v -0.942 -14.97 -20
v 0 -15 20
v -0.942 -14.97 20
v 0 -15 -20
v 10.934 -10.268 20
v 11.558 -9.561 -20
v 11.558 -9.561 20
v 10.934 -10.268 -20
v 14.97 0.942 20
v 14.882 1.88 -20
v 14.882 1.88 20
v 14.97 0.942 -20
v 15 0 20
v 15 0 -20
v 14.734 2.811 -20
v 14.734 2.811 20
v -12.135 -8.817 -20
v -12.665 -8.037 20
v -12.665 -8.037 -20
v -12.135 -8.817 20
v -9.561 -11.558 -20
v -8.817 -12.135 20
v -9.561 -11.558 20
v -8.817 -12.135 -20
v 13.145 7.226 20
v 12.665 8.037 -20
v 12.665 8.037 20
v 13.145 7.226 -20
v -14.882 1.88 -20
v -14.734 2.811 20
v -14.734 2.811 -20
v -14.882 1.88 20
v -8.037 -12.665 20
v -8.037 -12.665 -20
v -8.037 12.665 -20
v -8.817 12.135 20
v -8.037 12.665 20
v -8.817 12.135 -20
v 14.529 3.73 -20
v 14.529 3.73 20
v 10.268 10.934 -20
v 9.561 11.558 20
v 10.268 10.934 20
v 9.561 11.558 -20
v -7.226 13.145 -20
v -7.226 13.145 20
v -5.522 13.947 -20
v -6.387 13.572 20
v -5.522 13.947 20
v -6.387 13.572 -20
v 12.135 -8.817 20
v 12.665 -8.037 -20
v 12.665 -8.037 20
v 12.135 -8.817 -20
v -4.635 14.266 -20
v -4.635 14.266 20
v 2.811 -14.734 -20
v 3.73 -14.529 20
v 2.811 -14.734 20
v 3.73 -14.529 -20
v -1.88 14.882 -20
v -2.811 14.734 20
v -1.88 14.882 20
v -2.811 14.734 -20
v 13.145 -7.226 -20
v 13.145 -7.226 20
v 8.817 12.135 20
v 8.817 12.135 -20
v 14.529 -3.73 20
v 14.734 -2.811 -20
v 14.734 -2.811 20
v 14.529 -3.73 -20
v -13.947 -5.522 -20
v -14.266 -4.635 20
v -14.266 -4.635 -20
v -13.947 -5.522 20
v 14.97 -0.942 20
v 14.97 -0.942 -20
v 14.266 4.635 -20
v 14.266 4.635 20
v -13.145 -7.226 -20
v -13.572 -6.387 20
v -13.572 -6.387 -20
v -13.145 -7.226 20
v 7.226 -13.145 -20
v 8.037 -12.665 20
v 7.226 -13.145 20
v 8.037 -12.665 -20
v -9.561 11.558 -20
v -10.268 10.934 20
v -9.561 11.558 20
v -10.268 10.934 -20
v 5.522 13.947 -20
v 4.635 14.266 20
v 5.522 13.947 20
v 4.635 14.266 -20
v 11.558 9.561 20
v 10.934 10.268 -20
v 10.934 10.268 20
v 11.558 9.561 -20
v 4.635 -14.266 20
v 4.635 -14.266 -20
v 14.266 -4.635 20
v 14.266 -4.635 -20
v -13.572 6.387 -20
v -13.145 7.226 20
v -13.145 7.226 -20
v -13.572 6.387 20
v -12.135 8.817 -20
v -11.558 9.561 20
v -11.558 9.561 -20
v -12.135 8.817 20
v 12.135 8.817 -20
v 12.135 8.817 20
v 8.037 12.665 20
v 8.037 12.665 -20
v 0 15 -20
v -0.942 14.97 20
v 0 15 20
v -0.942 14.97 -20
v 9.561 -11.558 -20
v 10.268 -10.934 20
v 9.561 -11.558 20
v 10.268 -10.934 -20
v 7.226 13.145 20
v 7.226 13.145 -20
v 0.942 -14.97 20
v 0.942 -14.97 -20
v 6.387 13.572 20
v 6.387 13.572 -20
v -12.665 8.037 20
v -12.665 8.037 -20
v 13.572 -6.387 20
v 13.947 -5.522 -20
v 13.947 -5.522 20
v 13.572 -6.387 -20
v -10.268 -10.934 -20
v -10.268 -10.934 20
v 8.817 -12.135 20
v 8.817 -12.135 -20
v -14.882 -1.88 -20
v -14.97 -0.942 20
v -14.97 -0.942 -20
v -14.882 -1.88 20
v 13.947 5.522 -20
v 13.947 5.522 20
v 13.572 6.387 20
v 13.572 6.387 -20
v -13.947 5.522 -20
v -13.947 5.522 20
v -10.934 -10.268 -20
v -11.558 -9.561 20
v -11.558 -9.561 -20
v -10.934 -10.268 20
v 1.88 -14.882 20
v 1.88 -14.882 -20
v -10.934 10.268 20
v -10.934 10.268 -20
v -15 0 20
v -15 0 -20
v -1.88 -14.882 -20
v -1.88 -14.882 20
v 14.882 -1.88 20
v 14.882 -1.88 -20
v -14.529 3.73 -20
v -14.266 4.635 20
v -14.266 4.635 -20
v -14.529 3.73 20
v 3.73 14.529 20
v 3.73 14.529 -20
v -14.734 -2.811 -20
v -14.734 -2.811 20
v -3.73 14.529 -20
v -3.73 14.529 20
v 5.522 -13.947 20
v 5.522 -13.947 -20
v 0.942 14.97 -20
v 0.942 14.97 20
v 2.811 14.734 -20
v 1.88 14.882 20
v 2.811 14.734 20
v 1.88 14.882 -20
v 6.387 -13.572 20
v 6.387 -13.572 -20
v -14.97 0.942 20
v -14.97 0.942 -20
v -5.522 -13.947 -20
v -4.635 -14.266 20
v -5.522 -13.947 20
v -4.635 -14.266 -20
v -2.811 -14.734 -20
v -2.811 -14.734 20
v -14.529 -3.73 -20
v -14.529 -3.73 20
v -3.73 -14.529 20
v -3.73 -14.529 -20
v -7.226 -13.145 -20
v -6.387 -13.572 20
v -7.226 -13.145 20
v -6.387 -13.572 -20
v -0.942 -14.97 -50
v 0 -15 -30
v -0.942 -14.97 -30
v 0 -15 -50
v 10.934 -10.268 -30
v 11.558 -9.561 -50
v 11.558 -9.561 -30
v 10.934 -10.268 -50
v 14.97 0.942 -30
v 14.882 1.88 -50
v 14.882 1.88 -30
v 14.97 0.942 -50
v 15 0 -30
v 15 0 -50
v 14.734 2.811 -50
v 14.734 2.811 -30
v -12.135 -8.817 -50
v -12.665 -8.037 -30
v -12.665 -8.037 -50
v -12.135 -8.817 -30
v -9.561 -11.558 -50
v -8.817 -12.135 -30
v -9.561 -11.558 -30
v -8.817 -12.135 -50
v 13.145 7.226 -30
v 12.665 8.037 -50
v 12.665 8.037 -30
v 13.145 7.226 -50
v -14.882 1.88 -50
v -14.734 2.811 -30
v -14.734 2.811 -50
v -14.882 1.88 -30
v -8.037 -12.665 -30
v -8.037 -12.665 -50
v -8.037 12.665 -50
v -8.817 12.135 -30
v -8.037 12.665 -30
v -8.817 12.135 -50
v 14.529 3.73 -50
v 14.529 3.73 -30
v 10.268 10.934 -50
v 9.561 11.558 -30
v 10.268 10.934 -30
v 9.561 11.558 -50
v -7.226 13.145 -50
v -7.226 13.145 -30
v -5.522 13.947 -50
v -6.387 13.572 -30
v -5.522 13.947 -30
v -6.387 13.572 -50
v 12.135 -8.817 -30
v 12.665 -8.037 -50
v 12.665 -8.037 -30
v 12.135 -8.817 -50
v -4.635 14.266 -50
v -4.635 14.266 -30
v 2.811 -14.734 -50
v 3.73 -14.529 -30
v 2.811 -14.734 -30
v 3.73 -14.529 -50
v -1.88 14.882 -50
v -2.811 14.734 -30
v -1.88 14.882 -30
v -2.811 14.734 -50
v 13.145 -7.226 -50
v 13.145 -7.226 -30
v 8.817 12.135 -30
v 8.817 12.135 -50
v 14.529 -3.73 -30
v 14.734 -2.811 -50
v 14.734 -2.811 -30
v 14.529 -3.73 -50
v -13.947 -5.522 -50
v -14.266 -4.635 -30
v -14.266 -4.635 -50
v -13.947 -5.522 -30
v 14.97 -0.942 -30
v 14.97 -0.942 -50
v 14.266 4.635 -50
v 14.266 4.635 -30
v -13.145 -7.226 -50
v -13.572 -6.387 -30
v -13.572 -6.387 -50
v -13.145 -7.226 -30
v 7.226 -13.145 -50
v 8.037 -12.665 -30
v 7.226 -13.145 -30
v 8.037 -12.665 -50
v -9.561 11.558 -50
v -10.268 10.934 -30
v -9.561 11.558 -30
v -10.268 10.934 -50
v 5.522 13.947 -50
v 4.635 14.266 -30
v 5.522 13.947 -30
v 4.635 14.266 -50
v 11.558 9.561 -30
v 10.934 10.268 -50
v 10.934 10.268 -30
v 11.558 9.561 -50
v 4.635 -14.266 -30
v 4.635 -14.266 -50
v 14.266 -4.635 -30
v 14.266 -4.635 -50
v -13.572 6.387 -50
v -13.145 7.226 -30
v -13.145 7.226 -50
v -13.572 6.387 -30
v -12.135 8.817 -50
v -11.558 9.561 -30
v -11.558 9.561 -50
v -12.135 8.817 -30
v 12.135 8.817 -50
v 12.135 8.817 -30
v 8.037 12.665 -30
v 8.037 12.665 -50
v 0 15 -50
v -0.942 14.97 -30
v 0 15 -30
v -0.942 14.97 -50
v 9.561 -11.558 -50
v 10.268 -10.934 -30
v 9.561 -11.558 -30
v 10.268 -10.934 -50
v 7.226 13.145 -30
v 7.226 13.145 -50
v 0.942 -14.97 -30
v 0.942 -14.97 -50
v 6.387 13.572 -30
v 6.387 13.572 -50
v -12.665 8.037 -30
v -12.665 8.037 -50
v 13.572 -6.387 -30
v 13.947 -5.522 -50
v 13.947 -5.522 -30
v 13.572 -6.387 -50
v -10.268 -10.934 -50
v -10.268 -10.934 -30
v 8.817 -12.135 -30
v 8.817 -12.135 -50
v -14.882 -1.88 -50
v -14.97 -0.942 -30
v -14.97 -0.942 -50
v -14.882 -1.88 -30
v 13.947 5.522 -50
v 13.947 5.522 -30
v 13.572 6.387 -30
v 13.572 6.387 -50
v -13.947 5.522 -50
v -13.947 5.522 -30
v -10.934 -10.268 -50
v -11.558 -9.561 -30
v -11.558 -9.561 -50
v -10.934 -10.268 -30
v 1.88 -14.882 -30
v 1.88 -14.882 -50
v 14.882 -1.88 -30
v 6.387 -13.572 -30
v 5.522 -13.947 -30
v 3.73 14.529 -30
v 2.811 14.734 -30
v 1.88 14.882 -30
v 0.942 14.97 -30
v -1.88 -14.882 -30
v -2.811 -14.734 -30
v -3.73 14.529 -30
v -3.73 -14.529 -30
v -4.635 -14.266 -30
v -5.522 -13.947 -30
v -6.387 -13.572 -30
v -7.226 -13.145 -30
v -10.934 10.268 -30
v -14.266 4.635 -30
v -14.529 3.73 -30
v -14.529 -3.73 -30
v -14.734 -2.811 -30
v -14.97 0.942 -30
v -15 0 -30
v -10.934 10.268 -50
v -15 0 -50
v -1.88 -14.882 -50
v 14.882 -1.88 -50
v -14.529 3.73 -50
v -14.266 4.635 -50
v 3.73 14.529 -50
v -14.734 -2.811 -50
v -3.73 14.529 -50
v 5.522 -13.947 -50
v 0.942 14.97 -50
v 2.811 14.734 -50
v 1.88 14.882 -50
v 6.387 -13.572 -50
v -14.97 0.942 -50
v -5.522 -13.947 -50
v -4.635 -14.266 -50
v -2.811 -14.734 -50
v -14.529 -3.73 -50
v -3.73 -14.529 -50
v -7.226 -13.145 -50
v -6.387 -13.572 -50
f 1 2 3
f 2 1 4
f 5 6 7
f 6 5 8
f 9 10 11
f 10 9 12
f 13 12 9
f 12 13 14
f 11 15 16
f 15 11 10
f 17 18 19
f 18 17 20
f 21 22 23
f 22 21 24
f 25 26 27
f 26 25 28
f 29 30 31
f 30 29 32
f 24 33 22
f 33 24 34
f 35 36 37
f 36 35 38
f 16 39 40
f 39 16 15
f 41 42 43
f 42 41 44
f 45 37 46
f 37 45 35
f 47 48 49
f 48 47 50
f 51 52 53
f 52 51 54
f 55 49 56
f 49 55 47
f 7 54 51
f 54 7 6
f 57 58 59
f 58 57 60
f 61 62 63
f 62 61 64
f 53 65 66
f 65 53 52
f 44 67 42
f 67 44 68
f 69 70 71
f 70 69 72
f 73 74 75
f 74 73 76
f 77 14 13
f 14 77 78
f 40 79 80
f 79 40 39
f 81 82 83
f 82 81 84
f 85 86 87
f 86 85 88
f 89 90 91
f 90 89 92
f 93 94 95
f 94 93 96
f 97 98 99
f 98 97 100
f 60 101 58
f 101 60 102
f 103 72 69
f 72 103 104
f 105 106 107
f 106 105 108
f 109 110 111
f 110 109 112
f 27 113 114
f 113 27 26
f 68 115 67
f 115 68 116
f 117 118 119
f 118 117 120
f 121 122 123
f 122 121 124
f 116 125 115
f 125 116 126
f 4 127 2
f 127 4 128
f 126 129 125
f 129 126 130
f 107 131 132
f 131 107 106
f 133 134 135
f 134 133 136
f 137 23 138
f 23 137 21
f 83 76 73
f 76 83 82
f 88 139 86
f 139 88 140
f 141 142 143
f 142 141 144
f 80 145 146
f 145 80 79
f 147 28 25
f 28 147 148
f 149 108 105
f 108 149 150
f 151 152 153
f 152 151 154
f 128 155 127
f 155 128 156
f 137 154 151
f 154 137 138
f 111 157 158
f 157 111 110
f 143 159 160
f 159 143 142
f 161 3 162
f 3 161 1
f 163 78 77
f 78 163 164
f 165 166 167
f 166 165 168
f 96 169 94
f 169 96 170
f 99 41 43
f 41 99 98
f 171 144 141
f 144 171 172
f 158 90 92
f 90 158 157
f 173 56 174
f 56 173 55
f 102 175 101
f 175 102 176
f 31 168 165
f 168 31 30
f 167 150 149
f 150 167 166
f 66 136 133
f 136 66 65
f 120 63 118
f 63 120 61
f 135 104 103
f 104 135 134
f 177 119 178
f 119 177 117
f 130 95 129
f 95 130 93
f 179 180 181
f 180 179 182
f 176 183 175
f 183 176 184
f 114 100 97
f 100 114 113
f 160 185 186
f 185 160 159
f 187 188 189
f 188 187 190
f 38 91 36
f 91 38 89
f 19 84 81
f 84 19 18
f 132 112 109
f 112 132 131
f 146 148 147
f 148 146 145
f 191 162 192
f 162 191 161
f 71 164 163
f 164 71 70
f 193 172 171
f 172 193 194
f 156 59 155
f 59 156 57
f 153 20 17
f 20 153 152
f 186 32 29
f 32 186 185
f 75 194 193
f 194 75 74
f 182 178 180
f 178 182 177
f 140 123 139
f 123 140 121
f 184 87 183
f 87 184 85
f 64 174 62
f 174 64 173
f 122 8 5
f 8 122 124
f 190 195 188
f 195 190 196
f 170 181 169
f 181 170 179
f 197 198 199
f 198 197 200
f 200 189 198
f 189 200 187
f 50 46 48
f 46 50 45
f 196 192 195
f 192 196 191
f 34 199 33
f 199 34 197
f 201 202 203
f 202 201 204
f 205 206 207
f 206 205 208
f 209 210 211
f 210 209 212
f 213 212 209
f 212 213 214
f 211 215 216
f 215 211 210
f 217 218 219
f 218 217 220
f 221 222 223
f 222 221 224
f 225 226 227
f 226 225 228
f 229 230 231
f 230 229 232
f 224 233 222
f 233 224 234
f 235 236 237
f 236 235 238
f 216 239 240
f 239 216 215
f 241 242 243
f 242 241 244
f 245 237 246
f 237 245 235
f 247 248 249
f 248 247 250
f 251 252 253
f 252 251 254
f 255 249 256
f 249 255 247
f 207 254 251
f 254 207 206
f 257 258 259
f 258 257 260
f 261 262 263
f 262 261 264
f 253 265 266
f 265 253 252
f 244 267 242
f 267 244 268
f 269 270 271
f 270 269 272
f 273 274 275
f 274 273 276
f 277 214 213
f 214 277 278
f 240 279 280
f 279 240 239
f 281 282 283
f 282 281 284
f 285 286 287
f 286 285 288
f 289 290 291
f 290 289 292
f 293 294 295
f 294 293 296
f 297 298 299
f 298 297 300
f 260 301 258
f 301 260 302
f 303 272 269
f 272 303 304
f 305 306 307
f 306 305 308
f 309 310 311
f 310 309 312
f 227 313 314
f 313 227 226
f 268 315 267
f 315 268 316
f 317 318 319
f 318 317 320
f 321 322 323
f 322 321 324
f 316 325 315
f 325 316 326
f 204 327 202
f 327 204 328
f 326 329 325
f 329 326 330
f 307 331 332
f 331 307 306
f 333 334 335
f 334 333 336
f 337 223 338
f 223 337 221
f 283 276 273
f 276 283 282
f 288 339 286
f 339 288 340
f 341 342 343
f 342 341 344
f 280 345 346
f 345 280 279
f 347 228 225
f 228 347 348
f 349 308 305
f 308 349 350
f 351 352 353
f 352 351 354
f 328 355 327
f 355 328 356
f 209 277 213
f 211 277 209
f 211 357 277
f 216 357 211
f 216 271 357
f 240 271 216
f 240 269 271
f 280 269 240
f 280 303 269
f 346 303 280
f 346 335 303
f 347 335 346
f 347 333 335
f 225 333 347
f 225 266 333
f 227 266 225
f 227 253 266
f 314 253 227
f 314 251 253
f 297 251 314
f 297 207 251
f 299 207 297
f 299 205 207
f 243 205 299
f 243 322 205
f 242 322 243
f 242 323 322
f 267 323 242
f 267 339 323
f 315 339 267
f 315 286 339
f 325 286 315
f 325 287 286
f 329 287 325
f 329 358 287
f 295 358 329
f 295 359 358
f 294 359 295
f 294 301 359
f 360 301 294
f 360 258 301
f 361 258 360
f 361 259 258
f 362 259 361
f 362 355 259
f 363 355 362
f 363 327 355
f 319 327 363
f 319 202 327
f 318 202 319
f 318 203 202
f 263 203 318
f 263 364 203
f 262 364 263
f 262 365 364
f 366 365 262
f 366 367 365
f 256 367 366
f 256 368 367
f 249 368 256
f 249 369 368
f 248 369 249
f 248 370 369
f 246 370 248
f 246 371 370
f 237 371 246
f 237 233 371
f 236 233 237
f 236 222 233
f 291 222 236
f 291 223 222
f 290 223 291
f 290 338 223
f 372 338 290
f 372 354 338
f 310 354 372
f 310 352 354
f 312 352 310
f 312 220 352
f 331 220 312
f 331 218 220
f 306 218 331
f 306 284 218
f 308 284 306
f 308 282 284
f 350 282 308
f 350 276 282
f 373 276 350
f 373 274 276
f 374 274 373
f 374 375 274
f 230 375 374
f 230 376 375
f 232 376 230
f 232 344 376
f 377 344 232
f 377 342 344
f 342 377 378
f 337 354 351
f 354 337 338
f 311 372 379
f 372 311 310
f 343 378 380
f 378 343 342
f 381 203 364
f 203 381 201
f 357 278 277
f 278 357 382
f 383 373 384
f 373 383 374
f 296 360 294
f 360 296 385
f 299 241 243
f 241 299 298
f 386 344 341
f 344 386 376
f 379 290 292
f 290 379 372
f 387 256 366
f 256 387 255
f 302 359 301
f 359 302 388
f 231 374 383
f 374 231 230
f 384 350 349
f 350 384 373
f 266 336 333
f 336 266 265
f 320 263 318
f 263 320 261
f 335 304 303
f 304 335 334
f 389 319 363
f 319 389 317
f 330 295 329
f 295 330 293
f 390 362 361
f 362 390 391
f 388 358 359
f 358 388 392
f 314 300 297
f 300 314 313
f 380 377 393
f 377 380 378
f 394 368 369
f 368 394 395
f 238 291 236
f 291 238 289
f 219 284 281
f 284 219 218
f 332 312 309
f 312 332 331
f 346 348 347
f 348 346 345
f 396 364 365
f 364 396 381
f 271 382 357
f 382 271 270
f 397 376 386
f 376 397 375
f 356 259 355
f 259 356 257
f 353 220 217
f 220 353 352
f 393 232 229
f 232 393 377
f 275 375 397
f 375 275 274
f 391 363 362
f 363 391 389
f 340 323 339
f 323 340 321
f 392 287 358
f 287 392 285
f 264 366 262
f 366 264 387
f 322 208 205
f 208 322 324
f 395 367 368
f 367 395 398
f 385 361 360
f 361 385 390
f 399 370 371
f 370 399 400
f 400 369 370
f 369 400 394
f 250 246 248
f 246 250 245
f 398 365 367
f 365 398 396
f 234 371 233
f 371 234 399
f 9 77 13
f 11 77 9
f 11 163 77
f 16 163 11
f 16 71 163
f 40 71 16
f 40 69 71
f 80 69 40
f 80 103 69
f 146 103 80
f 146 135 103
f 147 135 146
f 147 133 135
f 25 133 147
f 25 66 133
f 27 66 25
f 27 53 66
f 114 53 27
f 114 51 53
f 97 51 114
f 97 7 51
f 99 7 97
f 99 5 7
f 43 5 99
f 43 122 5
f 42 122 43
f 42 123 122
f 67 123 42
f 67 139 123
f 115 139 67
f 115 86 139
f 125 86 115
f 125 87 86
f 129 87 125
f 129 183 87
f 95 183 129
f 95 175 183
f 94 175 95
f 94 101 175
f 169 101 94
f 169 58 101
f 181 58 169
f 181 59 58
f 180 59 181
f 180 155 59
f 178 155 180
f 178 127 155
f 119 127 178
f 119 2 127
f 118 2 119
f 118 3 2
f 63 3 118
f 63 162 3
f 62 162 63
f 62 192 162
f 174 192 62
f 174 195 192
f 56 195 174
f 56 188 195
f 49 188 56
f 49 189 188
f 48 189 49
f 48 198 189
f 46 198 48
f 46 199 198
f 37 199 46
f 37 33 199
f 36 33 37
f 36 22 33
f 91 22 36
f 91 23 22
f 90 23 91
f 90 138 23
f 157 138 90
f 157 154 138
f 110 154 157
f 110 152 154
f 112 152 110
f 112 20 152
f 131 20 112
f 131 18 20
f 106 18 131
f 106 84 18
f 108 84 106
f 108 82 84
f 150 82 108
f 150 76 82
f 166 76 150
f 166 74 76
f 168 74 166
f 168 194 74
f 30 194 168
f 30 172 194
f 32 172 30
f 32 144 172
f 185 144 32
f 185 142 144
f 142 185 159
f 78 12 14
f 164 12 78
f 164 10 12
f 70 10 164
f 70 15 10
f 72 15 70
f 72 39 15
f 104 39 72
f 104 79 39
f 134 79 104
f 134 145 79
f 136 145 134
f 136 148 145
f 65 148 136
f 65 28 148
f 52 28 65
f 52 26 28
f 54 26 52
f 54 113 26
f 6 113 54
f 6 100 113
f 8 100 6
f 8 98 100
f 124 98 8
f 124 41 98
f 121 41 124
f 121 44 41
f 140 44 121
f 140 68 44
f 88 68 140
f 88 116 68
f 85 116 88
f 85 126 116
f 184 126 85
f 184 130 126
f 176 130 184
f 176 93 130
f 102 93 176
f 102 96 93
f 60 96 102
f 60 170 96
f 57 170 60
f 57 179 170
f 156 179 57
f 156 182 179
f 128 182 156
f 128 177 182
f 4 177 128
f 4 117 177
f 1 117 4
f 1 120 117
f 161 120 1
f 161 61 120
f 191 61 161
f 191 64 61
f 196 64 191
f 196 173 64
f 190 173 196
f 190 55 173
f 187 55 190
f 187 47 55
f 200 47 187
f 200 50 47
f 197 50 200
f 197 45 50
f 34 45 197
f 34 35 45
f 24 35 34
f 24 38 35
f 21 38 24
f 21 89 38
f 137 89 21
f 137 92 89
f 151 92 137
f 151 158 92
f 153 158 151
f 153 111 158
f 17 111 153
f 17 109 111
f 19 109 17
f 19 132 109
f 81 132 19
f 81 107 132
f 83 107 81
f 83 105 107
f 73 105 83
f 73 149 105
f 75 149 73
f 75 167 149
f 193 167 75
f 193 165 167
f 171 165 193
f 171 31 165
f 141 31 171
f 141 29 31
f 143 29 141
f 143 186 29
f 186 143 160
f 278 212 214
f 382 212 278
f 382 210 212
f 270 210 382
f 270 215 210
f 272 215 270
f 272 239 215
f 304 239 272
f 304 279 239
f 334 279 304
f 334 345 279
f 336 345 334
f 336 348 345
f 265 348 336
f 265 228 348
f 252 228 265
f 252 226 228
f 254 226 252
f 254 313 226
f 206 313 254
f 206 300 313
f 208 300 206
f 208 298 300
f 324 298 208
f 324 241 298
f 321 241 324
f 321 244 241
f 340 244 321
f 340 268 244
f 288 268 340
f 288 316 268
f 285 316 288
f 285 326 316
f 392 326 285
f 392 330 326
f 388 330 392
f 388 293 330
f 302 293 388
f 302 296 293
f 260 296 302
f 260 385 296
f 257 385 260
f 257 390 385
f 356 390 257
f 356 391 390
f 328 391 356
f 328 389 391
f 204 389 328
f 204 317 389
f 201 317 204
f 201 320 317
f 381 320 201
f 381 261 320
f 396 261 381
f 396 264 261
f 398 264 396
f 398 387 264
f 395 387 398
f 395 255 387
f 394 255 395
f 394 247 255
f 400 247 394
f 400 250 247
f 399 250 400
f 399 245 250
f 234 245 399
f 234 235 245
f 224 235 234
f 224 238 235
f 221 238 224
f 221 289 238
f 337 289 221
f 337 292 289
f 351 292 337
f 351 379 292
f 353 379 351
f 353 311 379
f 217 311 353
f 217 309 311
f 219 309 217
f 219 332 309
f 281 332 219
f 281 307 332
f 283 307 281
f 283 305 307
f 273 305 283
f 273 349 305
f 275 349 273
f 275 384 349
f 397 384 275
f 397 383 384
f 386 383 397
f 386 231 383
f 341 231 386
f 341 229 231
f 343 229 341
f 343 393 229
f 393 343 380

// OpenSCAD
// Parameters for components
module central_cylinder() {
    cylinder(h = 30, r = 15, $fn = 100); // Main cylinder with smooth surface
}

module input_cylinder() {
    cylinder(h = 20, r = 15, $fn = 100); // Single, continuous cylinder
}

module output_cylinder() {
    cylinder(h = 20, r = 15, $fn = 100); // Single, continuous cylinder
}

module spacer_ring() {
    difference() {
        cylinder(h = 5, r = 15, $fn = 100); // Outer ring
        translate([0, 0, -1]) cylinder(h = 7, r = 10, $fn = 100); // Inner cutout
    }
}

module flange_plate() {
    difference() {
        cylinder(h = 5, r = 15, $fn = 100); // Outer ring
        translate([0, 0, -1]) cylinder(h = 7, r = 10, $fn = 100); // Inner cutout
        for (angle = [0:90:270]) {
            translate([12 * cos(angle), 12 * sin(angle), -1])
                cylinder(h = 7, r = 2, $fn = 50); // Bolt holes
        }
    }
}

module nut() {
    cylinder(h = 5, r = 3, $fn = 6); // Hexagonal nut
}

module bolt() {
    union() {
        cylinder(h = 20, r = 2, $fn = 50); // Bolt shaft
        translate([0, 0, 20]) cylinder(h = 2, r = 3, $fn = 50); // Bolt head
    }
}

// Assembly
module assembly() {
    translate([0, 0, 0]) input_cylinder(); // Layer 1
    translate([0, 0, -5]) flange_plate(); // Layer 2
    translate([0, 0, -10]) spacer_ring(); // Layer 3
    translate([0, 0, -15]) flange_plate(); // Layer 4
    translate([0, 0, -20]) central_cylinder(); // Layer 5
    translate([0, 0, -35]) flange_plate(); // Layer 6
    translate([0, 0, -40]) spacer_ring(); // Layer 7
    translate([0, 0, -45]) flange_plate(); // Layer 8
    translate([0, 0, -50]) output_cylinder(); // Layer 9

    // Bolts and nuts
    for (angle = [0:90:270]) {
        translate([12 * cos(angle), 12 * sin(angle), -5])
            bolt(); // Bolts in flange plates
        translate([12 * cos(angle), 12 * sin(angle), -7])
            nut(); // Nuts securing bolts
    }
}

// Render the assembly
assembly();
